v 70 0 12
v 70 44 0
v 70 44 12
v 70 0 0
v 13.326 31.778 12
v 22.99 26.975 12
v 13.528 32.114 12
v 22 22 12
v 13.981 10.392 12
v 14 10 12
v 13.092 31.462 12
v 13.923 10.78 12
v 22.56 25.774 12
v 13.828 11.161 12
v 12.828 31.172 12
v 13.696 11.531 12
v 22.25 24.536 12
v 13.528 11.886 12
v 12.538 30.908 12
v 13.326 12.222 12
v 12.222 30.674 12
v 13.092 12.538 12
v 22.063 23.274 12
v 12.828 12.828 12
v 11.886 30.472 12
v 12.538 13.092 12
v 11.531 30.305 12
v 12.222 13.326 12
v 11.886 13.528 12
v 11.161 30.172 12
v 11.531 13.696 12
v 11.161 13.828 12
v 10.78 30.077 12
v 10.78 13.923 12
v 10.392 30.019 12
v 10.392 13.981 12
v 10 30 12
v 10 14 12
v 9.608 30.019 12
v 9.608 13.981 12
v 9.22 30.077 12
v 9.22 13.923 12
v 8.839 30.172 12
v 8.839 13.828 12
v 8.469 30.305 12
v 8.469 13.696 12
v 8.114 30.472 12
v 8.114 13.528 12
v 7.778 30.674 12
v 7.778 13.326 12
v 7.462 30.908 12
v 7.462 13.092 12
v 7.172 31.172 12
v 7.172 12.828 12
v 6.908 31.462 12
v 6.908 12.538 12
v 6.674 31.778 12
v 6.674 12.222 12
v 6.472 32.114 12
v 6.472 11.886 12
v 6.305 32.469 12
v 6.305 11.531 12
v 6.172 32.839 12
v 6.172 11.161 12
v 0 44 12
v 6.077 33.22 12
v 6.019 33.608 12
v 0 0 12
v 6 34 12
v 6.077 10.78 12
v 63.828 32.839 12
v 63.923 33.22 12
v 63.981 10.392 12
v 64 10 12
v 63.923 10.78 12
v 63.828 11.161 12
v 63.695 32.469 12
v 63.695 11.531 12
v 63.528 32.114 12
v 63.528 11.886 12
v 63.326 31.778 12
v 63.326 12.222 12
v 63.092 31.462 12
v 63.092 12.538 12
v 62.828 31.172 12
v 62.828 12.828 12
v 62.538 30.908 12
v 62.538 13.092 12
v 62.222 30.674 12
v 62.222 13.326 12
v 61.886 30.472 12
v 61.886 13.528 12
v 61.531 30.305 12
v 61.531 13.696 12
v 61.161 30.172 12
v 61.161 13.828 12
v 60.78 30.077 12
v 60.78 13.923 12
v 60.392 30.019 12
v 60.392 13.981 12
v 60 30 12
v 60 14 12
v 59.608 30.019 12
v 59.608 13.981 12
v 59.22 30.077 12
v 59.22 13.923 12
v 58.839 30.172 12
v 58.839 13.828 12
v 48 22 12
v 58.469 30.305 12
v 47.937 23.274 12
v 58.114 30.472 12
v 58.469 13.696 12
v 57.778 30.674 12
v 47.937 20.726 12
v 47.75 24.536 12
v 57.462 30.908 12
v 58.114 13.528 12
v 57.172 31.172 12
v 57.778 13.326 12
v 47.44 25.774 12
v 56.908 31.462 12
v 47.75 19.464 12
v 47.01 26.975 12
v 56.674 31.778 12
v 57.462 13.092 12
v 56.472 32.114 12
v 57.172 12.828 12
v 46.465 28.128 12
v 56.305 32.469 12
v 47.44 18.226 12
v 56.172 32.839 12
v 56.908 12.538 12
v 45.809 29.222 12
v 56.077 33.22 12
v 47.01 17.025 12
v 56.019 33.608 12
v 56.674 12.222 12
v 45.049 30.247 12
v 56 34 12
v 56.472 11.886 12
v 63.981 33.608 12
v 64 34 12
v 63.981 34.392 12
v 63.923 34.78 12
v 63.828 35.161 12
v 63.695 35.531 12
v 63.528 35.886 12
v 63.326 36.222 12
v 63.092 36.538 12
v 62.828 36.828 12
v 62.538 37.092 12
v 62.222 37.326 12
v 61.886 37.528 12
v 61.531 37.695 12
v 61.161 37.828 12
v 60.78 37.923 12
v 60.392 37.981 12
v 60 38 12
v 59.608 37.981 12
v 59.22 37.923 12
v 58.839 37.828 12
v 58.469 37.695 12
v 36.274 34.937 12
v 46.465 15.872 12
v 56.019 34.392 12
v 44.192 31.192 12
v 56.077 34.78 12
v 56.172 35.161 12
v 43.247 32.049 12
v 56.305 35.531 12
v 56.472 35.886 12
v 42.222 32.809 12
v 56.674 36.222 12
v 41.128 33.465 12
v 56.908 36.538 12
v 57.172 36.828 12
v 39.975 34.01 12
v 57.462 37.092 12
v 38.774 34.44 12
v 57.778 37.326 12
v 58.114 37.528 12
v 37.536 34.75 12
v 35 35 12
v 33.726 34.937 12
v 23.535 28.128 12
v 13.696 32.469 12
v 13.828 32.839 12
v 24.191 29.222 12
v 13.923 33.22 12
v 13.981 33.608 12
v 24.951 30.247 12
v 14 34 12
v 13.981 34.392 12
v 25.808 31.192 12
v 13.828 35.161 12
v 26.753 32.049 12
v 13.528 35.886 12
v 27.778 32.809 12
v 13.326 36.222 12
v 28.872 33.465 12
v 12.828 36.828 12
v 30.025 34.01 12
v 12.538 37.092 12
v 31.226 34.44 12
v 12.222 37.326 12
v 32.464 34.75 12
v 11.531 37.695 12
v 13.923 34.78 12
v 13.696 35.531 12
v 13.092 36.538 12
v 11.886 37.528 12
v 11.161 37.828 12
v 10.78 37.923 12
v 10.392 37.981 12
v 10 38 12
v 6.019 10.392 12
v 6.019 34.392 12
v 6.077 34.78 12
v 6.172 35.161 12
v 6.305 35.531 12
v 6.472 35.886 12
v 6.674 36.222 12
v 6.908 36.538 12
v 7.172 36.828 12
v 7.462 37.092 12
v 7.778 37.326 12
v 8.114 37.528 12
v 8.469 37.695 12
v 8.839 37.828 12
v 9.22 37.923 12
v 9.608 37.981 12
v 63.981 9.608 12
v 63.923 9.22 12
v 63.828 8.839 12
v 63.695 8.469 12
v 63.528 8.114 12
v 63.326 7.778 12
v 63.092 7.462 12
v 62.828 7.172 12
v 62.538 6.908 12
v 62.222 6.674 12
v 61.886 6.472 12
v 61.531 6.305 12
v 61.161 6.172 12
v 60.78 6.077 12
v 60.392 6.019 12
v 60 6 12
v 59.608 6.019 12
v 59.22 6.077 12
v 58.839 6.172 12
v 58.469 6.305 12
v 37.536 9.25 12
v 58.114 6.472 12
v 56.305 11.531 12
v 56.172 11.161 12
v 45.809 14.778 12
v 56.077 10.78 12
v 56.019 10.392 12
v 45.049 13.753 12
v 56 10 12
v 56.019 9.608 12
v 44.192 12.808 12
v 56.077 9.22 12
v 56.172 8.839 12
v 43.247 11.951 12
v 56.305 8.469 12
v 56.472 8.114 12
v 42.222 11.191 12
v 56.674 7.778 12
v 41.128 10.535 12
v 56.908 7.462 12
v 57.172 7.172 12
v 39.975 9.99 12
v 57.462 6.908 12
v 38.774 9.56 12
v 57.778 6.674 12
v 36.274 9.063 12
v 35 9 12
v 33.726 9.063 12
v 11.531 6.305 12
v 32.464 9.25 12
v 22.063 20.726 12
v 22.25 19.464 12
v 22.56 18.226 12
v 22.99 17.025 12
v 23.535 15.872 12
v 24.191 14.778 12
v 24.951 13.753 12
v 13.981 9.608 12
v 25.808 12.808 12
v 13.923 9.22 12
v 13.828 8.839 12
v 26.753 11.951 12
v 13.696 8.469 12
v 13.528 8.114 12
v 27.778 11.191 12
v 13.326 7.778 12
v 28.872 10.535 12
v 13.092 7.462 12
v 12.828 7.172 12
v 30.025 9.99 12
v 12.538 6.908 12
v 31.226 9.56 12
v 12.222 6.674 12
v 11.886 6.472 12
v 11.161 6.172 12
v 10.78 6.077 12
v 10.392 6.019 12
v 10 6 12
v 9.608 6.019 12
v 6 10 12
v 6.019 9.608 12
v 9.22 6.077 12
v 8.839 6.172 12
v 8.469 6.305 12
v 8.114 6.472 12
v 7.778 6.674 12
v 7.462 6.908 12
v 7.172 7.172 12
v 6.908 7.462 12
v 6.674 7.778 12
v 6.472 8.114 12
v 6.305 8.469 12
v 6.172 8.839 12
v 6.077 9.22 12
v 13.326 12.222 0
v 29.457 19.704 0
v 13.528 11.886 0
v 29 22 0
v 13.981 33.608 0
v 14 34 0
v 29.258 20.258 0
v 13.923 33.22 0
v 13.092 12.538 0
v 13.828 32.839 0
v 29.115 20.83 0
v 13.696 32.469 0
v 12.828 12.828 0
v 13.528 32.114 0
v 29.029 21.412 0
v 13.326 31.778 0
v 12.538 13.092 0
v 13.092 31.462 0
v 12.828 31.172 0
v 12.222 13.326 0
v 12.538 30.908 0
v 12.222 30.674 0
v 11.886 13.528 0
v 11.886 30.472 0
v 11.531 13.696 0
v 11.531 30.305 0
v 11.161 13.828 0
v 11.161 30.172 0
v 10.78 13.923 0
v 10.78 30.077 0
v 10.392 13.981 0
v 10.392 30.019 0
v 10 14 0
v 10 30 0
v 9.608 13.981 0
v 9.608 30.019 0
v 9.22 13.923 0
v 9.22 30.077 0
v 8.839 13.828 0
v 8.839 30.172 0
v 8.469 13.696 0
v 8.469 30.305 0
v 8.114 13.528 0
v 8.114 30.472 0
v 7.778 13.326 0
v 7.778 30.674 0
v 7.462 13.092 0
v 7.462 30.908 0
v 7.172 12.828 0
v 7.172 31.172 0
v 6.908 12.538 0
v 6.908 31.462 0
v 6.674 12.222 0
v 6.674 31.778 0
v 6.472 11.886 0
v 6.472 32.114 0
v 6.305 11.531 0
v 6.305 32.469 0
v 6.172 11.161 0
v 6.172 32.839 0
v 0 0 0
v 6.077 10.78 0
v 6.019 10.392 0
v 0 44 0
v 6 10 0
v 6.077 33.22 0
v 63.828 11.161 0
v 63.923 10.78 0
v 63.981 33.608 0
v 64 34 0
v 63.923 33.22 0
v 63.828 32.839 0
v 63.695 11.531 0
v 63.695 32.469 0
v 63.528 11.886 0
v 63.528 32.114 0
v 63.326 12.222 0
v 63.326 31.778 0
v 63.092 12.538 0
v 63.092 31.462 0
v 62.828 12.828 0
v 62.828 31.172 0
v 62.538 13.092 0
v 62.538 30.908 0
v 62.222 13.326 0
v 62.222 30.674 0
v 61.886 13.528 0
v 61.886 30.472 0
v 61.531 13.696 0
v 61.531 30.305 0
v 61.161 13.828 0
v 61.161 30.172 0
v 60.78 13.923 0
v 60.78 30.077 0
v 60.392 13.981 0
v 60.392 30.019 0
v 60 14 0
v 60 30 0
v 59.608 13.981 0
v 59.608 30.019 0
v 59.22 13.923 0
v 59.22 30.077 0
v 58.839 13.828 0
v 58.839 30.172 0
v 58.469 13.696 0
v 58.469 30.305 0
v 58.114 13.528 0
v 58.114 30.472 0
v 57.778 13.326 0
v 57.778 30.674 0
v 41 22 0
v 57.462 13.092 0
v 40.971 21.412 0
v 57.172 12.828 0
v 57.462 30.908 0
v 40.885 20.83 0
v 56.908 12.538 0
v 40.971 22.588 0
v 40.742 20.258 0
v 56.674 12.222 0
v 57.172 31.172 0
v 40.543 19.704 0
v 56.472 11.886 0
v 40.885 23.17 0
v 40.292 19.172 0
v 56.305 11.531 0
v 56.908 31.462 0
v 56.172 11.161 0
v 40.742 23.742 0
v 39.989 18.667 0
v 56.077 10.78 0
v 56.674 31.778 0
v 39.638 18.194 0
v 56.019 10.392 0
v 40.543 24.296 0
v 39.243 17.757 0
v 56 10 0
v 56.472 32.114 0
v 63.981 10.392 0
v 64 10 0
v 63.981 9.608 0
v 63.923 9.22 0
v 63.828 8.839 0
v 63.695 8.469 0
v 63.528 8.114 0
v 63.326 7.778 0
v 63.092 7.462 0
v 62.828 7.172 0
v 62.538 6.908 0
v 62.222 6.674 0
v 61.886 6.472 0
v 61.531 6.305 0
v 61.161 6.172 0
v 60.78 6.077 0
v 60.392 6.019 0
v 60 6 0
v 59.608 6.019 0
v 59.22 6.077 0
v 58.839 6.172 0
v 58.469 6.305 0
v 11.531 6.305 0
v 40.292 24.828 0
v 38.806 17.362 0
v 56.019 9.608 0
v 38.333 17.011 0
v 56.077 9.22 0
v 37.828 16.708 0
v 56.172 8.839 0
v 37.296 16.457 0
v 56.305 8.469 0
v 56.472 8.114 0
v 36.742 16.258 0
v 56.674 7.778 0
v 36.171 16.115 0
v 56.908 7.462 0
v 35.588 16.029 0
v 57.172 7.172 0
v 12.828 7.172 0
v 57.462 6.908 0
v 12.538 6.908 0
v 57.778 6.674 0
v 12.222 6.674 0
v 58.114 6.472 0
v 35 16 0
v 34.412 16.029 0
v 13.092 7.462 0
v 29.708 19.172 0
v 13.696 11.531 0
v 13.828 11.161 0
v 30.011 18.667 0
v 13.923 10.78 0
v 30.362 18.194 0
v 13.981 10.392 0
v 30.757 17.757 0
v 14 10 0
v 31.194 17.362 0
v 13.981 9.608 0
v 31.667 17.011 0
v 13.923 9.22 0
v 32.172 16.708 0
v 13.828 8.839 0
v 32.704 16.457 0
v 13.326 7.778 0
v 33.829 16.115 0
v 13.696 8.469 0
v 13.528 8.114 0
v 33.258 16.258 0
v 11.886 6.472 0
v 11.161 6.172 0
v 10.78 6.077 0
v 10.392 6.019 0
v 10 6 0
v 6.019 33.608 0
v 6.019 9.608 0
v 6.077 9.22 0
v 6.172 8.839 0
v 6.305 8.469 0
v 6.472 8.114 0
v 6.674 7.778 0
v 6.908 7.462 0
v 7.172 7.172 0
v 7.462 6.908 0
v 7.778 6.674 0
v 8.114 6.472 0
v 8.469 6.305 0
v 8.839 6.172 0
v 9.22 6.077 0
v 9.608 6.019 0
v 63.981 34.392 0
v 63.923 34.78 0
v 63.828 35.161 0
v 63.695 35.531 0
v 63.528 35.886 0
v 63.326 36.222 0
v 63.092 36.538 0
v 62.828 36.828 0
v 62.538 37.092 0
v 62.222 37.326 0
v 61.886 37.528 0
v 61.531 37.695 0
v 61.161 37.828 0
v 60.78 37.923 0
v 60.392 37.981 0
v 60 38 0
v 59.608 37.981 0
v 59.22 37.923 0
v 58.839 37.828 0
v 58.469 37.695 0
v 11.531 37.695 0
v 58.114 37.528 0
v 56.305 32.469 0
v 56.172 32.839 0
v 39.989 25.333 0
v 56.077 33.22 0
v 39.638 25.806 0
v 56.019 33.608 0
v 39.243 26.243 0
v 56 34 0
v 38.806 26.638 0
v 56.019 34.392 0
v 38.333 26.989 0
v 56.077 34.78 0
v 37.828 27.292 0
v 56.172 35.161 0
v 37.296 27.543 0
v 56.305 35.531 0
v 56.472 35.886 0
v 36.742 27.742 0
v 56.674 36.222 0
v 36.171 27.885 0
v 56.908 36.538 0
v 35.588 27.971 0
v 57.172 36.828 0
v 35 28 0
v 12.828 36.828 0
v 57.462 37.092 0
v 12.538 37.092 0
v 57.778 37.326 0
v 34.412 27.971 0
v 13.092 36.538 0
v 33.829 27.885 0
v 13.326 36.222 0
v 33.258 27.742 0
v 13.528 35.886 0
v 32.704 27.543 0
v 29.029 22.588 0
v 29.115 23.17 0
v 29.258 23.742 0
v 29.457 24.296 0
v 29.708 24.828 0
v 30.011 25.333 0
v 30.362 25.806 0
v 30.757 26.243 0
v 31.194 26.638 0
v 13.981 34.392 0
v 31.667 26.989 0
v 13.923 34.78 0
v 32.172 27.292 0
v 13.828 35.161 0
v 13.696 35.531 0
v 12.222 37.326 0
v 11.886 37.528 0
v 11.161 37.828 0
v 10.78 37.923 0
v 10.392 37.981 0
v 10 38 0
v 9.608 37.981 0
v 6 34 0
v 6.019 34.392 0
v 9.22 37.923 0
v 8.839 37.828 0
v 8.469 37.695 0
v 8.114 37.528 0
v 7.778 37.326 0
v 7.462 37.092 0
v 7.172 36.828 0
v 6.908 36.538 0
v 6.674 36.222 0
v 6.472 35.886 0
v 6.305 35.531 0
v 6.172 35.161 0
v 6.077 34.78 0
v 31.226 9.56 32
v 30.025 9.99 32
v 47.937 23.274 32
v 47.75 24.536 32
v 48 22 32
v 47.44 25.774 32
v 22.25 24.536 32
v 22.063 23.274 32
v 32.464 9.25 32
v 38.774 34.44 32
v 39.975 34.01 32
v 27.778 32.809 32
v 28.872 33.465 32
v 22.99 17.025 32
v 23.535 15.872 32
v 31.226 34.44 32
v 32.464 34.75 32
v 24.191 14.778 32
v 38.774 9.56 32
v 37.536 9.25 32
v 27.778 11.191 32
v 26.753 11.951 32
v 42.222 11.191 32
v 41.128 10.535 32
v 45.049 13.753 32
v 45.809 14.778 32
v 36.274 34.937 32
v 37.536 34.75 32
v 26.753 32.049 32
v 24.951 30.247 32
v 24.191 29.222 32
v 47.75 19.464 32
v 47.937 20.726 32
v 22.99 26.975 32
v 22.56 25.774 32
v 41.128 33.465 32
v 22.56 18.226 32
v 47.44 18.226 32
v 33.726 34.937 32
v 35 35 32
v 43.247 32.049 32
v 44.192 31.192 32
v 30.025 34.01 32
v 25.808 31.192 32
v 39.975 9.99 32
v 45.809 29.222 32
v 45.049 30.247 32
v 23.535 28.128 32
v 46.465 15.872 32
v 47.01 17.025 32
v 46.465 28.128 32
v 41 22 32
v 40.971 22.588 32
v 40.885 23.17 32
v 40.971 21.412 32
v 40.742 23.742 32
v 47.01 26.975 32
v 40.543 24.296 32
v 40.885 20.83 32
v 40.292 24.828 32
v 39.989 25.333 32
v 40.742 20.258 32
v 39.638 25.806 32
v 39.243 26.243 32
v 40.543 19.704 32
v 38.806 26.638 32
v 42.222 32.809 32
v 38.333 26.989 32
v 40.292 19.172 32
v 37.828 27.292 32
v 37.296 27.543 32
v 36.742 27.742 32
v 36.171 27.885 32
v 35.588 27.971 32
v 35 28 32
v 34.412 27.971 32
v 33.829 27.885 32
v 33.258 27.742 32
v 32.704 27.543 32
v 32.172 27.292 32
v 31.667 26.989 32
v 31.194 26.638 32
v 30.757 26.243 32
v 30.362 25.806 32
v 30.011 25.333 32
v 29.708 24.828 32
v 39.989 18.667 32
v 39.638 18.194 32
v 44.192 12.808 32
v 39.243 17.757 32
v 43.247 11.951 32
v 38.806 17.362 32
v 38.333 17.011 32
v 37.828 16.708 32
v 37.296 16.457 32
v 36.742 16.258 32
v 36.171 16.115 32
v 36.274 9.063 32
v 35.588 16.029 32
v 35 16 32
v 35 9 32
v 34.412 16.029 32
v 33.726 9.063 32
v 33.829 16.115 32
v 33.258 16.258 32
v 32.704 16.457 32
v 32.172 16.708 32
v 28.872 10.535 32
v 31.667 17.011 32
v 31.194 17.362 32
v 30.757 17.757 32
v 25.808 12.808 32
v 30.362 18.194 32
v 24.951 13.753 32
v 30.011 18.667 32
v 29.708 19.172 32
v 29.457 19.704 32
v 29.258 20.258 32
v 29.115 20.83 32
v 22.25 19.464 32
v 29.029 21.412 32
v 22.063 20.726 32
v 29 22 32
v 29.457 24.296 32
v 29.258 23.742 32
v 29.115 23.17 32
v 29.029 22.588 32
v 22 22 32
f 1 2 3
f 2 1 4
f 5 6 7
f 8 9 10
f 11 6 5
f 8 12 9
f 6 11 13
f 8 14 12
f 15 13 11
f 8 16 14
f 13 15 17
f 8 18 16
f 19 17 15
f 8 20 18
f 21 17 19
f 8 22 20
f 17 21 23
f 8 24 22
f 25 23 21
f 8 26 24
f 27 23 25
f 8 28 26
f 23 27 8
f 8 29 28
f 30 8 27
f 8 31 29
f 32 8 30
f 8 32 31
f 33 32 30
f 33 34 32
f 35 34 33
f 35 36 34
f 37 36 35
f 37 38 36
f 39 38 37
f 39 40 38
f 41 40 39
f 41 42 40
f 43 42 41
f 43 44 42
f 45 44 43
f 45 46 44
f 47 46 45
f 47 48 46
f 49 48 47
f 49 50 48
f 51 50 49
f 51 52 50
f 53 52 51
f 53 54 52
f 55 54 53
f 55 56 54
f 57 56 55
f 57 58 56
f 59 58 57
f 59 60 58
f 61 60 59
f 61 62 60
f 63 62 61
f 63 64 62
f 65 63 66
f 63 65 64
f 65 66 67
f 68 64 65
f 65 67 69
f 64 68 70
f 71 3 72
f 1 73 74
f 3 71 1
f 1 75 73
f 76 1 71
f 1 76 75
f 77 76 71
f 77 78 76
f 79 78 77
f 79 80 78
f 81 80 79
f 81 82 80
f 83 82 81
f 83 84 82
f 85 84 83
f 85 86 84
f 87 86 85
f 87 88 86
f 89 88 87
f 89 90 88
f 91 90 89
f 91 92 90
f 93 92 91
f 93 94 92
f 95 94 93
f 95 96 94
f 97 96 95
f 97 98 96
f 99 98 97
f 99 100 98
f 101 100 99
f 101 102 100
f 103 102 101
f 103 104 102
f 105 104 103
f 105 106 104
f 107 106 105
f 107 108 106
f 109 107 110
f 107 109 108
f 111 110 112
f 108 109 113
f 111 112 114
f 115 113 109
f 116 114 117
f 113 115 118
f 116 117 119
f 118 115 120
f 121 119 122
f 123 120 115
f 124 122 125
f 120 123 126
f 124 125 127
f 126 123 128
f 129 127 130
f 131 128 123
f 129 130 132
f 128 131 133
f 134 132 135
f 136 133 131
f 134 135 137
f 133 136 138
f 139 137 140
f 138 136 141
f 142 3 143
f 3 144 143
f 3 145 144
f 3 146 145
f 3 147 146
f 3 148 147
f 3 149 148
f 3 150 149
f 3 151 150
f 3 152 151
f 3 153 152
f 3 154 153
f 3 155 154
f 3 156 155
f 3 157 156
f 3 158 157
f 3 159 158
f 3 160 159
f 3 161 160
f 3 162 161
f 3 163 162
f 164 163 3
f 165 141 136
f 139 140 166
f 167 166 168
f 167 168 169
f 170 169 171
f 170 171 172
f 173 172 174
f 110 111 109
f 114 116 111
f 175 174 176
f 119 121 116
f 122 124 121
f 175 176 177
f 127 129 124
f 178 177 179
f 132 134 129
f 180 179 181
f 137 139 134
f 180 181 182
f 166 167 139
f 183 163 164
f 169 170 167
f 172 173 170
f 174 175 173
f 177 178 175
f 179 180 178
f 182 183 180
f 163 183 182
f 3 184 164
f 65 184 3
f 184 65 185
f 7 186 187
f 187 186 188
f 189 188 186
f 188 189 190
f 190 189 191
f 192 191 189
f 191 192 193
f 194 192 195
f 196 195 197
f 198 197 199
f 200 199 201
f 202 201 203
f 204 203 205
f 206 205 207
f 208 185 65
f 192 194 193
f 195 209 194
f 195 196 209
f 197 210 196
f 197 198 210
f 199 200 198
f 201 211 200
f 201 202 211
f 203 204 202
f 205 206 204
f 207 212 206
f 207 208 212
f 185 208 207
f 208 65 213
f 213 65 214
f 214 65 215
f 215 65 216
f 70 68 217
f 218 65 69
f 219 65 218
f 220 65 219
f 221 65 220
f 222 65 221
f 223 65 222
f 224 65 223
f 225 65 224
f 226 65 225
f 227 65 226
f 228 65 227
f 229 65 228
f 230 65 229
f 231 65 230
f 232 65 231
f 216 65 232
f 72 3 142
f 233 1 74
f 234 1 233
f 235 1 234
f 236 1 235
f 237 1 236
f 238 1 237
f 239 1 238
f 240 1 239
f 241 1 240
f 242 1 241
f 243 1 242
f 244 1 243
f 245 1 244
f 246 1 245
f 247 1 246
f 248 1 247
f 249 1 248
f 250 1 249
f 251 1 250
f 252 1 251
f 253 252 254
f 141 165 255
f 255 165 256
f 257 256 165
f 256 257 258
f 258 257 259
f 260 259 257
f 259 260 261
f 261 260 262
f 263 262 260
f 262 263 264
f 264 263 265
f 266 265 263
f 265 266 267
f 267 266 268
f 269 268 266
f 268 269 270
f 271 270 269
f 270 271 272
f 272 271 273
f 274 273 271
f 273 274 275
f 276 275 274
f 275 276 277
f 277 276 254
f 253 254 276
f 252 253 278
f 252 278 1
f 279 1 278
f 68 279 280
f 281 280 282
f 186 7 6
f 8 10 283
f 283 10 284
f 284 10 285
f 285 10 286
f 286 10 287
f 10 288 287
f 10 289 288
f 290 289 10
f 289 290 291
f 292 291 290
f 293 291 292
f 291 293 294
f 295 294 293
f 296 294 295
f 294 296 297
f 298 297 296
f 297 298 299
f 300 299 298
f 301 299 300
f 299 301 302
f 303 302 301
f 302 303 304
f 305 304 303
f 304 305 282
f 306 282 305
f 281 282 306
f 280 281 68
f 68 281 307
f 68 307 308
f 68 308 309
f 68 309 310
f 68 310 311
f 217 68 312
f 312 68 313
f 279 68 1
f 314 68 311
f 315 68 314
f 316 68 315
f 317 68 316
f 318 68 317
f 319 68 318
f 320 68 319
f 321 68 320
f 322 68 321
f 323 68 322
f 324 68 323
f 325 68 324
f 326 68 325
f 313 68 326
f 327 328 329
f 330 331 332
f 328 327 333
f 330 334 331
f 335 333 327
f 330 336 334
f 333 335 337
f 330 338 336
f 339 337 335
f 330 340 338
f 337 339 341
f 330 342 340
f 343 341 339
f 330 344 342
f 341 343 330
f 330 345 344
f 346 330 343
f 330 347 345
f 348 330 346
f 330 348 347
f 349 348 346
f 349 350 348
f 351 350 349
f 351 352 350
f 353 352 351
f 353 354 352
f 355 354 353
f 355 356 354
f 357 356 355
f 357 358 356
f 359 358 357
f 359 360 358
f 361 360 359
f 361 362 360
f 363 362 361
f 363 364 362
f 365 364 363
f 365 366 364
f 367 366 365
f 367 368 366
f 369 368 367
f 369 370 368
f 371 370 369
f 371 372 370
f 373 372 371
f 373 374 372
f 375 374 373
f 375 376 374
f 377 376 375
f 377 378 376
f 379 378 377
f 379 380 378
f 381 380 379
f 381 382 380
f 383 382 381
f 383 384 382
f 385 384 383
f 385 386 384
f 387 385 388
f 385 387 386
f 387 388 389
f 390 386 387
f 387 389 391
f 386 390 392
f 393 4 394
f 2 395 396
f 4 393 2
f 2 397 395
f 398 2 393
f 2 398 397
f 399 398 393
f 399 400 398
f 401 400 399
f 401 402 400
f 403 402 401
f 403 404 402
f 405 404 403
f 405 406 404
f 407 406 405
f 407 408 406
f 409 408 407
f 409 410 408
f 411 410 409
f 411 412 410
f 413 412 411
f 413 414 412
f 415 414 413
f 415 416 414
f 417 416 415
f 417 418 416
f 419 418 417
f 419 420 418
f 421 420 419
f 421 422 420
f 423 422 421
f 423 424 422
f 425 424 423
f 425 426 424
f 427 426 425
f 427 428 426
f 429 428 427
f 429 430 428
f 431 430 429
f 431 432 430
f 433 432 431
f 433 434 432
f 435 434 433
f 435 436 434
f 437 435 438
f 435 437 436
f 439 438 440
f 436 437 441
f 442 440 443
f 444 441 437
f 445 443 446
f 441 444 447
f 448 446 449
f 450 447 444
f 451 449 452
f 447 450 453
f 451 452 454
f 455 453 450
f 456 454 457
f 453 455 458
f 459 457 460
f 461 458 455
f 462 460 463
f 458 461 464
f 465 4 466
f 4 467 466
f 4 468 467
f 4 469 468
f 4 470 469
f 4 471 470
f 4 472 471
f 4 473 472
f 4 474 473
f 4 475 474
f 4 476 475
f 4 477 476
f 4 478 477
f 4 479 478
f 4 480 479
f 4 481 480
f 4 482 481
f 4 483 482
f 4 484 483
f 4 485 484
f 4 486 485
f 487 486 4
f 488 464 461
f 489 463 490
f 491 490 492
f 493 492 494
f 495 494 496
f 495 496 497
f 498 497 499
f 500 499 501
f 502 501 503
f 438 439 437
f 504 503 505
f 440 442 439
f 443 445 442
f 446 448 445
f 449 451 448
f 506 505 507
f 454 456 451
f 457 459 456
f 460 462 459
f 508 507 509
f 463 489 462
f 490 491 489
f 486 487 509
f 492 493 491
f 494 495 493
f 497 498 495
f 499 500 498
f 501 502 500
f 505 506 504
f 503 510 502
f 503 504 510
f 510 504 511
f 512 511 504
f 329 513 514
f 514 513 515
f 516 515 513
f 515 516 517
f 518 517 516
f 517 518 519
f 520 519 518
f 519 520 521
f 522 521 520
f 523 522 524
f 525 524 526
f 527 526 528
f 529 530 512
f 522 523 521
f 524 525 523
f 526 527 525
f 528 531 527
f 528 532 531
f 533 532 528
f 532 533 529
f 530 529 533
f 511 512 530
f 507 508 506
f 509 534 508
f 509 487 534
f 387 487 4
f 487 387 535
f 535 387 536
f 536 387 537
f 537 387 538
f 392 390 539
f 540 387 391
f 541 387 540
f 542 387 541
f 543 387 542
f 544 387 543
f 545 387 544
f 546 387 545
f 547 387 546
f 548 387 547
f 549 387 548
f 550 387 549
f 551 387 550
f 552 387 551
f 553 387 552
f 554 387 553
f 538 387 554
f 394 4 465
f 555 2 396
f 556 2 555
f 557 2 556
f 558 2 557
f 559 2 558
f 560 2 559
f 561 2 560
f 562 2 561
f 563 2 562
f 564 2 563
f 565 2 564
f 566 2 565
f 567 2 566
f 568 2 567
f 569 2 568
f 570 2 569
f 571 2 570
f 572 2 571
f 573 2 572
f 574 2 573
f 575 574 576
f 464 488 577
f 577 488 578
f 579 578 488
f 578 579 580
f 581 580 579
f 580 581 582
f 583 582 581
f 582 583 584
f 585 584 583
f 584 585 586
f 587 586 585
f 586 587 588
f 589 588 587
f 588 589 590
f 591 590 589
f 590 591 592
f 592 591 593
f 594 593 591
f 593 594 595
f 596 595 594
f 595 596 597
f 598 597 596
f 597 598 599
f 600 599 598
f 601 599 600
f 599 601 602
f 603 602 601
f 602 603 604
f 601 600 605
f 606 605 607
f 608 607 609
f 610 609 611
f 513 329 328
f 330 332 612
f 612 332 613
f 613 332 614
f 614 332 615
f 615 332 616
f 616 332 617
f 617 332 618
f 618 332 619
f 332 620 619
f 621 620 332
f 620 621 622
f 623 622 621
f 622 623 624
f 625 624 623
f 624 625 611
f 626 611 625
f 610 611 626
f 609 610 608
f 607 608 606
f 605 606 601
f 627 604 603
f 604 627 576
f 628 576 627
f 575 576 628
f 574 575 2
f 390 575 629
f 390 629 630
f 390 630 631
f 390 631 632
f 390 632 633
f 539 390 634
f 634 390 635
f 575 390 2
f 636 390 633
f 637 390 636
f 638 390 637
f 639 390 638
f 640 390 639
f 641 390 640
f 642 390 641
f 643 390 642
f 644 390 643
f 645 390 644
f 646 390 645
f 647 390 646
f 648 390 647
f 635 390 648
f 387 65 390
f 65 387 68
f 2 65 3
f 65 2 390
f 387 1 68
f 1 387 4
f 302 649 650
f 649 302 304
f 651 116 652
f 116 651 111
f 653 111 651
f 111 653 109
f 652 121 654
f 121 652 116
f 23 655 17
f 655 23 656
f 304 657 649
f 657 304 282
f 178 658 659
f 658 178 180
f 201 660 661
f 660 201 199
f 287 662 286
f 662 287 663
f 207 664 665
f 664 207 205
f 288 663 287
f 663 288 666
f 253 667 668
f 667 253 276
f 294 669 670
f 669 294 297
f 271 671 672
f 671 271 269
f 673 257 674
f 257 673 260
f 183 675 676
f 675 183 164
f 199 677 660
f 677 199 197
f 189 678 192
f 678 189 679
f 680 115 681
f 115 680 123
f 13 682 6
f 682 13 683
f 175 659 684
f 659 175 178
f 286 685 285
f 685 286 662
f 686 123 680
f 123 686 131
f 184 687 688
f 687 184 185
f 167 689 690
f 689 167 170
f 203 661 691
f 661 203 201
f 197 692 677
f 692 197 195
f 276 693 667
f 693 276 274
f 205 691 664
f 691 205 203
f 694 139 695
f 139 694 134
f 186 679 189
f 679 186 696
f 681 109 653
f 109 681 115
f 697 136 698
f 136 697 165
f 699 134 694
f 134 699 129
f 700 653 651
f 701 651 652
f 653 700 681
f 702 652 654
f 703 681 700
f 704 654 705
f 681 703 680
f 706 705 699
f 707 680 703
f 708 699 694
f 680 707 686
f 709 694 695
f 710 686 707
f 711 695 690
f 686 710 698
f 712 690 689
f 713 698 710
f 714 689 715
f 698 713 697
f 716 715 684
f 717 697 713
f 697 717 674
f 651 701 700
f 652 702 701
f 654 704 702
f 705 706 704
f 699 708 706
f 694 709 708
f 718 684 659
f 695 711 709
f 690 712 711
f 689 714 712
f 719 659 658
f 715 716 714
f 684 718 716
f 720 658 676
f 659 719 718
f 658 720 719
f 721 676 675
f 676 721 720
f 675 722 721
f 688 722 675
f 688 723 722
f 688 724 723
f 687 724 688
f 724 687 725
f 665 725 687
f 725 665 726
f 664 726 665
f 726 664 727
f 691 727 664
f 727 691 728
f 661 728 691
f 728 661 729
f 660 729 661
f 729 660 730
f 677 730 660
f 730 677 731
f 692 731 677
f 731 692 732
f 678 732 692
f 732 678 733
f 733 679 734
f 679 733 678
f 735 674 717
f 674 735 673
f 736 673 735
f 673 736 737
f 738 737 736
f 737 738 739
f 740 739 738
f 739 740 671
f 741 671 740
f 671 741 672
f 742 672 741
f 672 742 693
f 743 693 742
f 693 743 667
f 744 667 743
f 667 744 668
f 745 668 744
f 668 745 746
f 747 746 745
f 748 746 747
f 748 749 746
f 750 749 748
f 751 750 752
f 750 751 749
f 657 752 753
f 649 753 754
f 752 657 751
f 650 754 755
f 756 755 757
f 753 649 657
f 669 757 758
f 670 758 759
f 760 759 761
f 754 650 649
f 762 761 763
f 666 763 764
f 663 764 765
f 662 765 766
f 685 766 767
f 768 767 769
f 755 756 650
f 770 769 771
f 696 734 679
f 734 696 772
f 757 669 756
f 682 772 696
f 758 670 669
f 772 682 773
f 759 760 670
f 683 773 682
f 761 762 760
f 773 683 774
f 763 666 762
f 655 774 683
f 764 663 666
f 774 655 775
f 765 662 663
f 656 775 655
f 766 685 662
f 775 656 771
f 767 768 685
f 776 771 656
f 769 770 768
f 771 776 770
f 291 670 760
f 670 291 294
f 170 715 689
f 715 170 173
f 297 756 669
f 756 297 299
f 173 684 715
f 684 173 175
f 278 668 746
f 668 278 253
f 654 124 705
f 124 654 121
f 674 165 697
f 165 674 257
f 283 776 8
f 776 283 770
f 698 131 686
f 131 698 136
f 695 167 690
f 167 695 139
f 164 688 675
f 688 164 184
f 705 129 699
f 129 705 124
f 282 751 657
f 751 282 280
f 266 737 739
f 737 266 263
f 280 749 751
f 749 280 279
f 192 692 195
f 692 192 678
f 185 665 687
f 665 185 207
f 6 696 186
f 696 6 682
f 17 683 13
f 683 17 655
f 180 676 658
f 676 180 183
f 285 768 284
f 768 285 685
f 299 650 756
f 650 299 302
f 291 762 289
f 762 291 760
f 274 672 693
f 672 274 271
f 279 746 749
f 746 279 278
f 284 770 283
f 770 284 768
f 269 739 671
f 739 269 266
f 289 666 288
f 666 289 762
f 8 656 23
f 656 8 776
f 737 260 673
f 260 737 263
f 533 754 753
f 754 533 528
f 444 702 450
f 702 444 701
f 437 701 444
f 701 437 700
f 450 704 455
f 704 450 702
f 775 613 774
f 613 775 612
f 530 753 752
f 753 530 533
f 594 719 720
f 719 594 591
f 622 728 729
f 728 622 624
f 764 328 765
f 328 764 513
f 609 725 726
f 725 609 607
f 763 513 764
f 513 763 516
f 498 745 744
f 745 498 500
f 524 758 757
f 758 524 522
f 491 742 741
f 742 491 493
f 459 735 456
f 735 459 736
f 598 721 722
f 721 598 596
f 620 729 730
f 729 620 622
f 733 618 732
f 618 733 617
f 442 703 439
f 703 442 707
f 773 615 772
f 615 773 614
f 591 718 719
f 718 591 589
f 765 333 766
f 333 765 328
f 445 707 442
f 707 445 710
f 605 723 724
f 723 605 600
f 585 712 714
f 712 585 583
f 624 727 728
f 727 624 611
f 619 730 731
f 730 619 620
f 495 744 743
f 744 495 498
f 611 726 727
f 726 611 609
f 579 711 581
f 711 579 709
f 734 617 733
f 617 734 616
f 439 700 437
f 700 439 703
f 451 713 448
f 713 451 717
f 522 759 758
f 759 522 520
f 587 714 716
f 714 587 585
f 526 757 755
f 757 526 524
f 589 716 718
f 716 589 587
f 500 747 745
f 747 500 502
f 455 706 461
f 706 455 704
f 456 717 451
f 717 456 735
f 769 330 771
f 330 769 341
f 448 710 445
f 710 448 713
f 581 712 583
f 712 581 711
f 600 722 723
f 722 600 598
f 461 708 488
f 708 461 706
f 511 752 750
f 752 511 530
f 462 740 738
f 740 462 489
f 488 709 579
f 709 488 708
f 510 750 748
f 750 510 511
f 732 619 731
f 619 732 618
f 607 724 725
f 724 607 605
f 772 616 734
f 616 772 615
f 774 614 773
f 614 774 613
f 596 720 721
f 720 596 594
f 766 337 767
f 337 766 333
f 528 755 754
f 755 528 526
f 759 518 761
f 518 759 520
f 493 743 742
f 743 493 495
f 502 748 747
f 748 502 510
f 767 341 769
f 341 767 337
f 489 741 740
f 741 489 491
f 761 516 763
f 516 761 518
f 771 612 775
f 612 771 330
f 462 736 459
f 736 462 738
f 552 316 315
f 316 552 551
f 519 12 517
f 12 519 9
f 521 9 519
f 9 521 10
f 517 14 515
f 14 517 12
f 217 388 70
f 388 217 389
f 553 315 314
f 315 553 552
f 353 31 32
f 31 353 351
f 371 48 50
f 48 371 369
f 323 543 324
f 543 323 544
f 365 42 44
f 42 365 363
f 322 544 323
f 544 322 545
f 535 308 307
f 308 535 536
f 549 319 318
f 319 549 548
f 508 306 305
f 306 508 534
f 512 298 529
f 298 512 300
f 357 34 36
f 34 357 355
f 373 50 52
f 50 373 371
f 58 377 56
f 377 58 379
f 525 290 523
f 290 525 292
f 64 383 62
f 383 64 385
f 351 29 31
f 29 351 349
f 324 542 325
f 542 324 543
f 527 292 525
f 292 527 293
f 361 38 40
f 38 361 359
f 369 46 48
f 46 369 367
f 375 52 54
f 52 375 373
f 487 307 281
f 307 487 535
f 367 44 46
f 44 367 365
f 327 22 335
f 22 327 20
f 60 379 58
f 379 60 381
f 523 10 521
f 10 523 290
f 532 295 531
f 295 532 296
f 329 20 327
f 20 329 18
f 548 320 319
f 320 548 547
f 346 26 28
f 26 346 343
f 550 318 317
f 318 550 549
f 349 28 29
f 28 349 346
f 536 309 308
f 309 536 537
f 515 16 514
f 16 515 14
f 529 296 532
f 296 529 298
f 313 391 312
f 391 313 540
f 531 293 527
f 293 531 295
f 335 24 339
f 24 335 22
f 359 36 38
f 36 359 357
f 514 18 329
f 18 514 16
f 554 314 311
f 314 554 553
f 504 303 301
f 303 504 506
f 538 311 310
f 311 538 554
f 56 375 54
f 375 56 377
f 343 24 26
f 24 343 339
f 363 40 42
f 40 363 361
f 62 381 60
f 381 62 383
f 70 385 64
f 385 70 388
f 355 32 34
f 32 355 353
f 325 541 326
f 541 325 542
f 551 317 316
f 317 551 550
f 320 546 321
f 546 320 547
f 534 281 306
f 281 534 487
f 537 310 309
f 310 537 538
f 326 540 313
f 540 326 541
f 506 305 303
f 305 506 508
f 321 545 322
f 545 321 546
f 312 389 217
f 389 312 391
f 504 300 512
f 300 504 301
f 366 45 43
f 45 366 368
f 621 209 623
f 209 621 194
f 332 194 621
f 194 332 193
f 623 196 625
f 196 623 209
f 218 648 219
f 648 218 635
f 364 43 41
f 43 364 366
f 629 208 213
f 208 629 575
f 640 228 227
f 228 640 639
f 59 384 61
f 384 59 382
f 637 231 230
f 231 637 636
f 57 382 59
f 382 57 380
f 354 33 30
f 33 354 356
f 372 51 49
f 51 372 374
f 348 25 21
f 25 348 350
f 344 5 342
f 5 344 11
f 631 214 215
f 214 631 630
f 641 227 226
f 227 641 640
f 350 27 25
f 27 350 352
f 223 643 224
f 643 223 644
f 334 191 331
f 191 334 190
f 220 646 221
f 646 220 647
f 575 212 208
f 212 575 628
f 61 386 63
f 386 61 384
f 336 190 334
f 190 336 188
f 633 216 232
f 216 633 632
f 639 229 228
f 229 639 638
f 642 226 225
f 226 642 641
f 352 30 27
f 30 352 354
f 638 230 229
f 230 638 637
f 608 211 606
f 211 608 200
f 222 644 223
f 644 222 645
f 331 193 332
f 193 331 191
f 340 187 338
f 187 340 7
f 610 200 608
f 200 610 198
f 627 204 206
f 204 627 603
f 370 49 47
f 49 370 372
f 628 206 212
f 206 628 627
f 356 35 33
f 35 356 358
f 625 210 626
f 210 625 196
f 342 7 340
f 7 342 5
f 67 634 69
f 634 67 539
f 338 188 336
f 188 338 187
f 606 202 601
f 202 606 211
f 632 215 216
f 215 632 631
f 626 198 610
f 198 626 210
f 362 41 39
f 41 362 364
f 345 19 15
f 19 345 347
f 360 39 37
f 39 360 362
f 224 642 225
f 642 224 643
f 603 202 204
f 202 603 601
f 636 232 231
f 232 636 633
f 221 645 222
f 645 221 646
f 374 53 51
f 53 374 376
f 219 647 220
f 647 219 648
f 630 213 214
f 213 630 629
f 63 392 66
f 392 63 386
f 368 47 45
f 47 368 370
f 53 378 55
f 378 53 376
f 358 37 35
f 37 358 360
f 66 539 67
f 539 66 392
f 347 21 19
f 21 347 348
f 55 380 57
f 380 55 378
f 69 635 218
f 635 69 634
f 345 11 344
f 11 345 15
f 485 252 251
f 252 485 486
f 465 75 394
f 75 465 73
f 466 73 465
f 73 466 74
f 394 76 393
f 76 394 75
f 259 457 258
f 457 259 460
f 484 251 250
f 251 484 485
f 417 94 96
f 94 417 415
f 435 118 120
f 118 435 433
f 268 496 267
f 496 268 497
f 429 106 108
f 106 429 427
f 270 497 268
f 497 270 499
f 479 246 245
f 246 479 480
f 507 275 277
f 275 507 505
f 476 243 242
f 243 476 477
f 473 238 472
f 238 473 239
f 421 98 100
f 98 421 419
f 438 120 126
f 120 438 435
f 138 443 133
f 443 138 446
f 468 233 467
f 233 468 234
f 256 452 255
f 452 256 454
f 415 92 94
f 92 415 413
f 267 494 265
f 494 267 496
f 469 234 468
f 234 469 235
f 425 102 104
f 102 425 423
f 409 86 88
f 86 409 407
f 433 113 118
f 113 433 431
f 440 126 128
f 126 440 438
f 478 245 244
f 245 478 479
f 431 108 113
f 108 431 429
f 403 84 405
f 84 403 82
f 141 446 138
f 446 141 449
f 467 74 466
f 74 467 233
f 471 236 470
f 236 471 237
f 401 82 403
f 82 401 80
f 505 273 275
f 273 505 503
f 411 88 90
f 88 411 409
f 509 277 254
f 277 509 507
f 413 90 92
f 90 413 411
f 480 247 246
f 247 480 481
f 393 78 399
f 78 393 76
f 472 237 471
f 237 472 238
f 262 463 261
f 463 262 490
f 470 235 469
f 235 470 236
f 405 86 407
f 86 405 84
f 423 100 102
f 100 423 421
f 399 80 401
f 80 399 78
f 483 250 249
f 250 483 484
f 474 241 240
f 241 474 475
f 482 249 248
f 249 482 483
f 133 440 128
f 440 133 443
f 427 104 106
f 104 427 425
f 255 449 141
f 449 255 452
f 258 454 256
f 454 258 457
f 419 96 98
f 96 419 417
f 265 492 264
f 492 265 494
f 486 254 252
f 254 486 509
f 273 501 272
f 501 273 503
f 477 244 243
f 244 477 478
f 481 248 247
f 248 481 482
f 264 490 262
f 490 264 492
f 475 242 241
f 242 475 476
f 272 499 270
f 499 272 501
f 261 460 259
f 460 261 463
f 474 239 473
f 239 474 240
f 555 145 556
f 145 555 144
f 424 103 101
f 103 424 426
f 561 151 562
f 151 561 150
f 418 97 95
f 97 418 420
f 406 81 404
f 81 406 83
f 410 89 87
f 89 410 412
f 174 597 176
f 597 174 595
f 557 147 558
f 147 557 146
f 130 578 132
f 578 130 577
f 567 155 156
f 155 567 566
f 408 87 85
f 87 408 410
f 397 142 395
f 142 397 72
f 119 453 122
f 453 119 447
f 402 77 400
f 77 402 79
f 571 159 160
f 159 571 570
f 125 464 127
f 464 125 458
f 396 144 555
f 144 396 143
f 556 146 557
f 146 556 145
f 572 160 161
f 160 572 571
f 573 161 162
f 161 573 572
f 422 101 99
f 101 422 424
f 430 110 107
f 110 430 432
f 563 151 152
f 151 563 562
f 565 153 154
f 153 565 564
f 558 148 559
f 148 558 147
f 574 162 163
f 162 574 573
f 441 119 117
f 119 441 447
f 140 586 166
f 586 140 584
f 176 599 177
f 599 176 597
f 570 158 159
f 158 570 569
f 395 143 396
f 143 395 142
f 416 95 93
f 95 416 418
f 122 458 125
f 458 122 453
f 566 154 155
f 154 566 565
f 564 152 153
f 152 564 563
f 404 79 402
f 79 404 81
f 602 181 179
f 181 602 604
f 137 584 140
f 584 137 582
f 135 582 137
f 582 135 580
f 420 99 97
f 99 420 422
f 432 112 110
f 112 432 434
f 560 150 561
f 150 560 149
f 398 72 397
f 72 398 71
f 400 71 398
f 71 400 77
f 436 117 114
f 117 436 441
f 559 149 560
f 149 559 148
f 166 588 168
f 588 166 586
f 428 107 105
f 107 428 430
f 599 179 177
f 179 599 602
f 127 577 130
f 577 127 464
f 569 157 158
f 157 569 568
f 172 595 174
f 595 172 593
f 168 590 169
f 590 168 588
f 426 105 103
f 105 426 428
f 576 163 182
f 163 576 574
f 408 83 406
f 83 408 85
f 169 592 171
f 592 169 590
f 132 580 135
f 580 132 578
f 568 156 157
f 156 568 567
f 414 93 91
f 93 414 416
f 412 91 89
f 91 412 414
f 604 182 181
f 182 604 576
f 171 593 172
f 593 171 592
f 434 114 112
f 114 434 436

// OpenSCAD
// 凸台座（boss）— 由 ortho_lib_work/objects.py 產生，請改 objects.py 後重建
// 底板 70×44×12；正中央凸起直徑 26、高 20 的圓凸台；直徑 12 的孔從凸台頂面貫穿到底；底板四角各一個直徑 8 的孔。
difference() {
  union() {
    translate([0,0,0]) cube([70,44,12]);
    multmatrix([[1,0,0,0],[0,1,0,0],[0,0,1,12],[0,0,0,1]]) translate([35,22,0]) cylinder(h=20, r=13, $fn=64);
  }
  union() {
    multmatrix([[1,0,0,0],[0,1,0,0],[0,0,1,-1],[0,0,0,1]]) translate([35,22,0]) cylinder(h=34, r=6, $fn=64);
    multmatrix([[1,0,0,0],[0,1,0,0],[0,0,1,-1],[0,0,0,1]]) translate([10,10,0]) cylinder(h=14, r=4, $fn=64);
    multmatrix([[1,0,0,0],[0,1,0,0],[0,0,1,-1],[0,0,0,1]]) translate([10,34,0]) cylinder(h=14, r=4, $fn=64);
    multmatrix([[1,0,0,0],[0,1,0,0],[0,0,1,-1],[0,0,0,1]]) translate([60,10,0]) cylinder(h=14, r=4, $fn=64);
    multmatrix([[1,0,0,0],[0,1,0,0],[0,0,1,-1],[0,0,0,1]]) translate([60,34,0]) cylinder(h=14, r=4, $fn=64);
  }
}
